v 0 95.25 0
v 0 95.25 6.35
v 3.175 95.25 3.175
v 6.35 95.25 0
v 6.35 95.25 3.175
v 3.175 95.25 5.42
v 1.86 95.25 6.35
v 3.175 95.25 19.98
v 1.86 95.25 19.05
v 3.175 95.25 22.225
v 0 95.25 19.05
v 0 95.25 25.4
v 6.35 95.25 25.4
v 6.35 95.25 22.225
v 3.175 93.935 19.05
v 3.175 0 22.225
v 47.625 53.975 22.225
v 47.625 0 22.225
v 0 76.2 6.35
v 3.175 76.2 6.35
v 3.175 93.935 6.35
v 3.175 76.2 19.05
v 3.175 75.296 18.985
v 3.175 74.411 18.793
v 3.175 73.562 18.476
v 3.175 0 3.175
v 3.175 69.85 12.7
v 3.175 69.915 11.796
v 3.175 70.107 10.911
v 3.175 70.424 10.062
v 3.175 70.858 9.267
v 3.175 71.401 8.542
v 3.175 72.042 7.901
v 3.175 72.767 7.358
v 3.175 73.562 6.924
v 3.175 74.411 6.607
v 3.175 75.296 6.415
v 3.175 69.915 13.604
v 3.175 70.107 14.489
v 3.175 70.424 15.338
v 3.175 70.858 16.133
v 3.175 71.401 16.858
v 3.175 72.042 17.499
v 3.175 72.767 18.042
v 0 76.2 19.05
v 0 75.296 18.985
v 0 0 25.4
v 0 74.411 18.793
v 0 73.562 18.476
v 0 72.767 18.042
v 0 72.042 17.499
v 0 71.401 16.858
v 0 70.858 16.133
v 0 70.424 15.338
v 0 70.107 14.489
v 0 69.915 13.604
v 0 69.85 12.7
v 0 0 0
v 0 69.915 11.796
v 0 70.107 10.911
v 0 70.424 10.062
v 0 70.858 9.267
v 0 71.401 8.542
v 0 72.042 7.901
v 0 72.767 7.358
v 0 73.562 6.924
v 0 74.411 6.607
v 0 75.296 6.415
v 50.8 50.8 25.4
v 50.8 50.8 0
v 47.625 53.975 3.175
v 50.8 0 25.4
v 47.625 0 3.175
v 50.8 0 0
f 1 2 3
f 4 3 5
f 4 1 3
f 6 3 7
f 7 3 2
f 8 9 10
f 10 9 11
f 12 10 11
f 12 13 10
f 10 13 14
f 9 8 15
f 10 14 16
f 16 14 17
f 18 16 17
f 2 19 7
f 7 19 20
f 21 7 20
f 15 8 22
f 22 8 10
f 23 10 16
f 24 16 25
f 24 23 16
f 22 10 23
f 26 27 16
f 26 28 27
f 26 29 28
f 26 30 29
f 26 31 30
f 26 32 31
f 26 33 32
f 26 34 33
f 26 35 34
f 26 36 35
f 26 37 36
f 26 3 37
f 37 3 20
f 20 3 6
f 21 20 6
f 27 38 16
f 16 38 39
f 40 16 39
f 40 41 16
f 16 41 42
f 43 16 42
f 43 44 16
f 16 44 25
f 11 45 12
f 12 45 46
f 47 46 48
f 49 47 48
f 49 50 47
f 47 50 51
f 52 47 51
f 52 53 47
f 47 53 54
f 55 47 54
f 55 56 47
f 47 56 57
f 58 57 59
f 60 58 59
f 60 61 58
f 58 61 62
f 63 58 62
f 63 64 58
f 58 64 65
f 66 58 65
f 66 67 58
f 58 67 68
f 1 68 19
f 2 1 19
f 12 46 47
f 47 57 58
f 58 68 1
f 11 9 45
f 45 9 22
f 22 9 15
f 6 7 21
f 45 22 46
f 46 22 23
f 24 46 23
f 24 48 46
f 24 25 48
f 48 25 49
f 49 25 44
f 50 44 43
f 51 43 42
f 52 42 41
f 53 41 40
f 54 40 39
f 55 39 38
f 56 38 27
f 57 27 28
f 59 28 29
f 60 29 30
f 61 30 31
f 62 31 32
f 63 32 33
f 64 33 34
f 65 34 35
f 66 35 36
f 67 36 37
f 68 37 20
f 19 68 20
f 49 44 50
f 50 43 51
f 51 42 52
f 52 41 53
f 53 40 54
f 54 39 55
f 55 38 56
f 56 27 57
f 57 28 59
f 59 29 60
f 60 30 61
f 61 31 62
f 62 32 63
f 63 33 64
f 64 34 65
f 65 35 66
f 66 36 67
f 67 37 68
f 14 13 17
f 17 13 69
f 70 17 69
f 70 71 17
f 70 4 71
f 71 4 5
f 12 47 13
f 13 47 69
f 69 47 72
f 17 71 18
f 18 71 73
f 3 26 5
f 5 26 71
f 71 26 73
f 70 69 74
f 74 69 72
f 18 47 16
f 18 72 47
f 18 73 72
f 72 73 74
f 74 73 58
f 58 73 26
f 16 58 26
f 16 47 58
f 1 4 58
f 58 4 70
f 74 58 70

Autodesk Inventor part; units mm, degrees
ref_plane "YZ Plane" through (0, 0, 0) normal (1, 0, 0) x (0, 1, 0)
ref_plane "XZ Plane" through (0, 0, 0) normal (0, 1, 0) x (-1, 0, 0)
ref_plane "XY Plane" through (0, 0, 0) normal (0, 0, 1) x (1, 0, 0)
sketch "Sketch1" plane through (0, 0, 0) normal (0, 0, 1) x (1, 0, 0)
  line L0 (0, 0) -> (50.8, 0)
  line L1 (50.8, 0) -> (50.8, 101.6)
  line L2 (50.8, 101.6) -> (0, 101.6)
  line L3 (0, 101.6) -> (0, 0)
  dimension "d3" = 50.8
  dimension "d4" = 101.6
extrude "Extrusion1" add sketch "Sketch1" along normal blind 25.4
shell "Shell1" thickness 3.175 removed faces 2 at (33.8667, 101.6, 16.9333) at (16.9333, 0, 16.9333)
sketch "Sketch2" plane through (0, 0, 0) normal (0, 0, -1) x (-1, 0, 0)
  line L0 (-50.8, 101.6) -> (0, 101.6) projected
  line L1 (-50.8, 0) -> (-50.8, 101.6) projected
  line L2 (-50.8, 50.8) -> (-50.8, 101.6)
  line L3 (-50.8, 101.6) -> (0, 101.6)
  line L4 (0, 101.6) -> (-50.8, 50.8)
  dimension "d5" = 50.8
extrude "Extrusion2" cut sketch "Sketch2" against normal through all
sketch "Sketch3" plane through (0, 0, 0) normal (-1, 0, 0) x (0, 0, 1)
  line L0 (0, 101.6) -> (25.4, 101.6) projected
  line L1 (0, 101.6) -> (0, 0) projected
  arc A0 (6.35, 76.2) -> (19.05, 76.2) centre (12.7, 76.2) ccw
  line L2 (6.35, 76.2) -> (6.35, 101.6)
  line L3 (19.05, 76.2) -> (19.05, 101.6)
  dimension "d8" = 25.4
  dimension "d9" = 6.35
  dimension "d10" = 12.7
extrude "Extrusion3" cut sketch "Sketch3" against normal through all
chamfer "Chamfer1" distance 3.175 angle 45 2 edges at (1.5875, 100.0125, 6.35) (1.5875, 100.0125, 19.05)
sketch "Sketch4" plane through (0, 0, 25.4) normal (0, 0, 1) x (1, 0, 0)
  line L0 (50.8, 50.8) -> (0, 101.6) projected
  line L1 (0, 0) -> (0, 101.6) projected
  line L2 (0, 101.6) -> (0, 95.25)
  line L3 (6.35, 95.25) -> (0, 101.6)
  line L4 (0, 95.25) -> (6.35, 95.25)
  dimension "d16" = 6.35
extrude "Extrusion4" cut sketch "Sketch4" against normal through all
properties part number "FrameSideBumperMounts" material "Aluminum-6061"
